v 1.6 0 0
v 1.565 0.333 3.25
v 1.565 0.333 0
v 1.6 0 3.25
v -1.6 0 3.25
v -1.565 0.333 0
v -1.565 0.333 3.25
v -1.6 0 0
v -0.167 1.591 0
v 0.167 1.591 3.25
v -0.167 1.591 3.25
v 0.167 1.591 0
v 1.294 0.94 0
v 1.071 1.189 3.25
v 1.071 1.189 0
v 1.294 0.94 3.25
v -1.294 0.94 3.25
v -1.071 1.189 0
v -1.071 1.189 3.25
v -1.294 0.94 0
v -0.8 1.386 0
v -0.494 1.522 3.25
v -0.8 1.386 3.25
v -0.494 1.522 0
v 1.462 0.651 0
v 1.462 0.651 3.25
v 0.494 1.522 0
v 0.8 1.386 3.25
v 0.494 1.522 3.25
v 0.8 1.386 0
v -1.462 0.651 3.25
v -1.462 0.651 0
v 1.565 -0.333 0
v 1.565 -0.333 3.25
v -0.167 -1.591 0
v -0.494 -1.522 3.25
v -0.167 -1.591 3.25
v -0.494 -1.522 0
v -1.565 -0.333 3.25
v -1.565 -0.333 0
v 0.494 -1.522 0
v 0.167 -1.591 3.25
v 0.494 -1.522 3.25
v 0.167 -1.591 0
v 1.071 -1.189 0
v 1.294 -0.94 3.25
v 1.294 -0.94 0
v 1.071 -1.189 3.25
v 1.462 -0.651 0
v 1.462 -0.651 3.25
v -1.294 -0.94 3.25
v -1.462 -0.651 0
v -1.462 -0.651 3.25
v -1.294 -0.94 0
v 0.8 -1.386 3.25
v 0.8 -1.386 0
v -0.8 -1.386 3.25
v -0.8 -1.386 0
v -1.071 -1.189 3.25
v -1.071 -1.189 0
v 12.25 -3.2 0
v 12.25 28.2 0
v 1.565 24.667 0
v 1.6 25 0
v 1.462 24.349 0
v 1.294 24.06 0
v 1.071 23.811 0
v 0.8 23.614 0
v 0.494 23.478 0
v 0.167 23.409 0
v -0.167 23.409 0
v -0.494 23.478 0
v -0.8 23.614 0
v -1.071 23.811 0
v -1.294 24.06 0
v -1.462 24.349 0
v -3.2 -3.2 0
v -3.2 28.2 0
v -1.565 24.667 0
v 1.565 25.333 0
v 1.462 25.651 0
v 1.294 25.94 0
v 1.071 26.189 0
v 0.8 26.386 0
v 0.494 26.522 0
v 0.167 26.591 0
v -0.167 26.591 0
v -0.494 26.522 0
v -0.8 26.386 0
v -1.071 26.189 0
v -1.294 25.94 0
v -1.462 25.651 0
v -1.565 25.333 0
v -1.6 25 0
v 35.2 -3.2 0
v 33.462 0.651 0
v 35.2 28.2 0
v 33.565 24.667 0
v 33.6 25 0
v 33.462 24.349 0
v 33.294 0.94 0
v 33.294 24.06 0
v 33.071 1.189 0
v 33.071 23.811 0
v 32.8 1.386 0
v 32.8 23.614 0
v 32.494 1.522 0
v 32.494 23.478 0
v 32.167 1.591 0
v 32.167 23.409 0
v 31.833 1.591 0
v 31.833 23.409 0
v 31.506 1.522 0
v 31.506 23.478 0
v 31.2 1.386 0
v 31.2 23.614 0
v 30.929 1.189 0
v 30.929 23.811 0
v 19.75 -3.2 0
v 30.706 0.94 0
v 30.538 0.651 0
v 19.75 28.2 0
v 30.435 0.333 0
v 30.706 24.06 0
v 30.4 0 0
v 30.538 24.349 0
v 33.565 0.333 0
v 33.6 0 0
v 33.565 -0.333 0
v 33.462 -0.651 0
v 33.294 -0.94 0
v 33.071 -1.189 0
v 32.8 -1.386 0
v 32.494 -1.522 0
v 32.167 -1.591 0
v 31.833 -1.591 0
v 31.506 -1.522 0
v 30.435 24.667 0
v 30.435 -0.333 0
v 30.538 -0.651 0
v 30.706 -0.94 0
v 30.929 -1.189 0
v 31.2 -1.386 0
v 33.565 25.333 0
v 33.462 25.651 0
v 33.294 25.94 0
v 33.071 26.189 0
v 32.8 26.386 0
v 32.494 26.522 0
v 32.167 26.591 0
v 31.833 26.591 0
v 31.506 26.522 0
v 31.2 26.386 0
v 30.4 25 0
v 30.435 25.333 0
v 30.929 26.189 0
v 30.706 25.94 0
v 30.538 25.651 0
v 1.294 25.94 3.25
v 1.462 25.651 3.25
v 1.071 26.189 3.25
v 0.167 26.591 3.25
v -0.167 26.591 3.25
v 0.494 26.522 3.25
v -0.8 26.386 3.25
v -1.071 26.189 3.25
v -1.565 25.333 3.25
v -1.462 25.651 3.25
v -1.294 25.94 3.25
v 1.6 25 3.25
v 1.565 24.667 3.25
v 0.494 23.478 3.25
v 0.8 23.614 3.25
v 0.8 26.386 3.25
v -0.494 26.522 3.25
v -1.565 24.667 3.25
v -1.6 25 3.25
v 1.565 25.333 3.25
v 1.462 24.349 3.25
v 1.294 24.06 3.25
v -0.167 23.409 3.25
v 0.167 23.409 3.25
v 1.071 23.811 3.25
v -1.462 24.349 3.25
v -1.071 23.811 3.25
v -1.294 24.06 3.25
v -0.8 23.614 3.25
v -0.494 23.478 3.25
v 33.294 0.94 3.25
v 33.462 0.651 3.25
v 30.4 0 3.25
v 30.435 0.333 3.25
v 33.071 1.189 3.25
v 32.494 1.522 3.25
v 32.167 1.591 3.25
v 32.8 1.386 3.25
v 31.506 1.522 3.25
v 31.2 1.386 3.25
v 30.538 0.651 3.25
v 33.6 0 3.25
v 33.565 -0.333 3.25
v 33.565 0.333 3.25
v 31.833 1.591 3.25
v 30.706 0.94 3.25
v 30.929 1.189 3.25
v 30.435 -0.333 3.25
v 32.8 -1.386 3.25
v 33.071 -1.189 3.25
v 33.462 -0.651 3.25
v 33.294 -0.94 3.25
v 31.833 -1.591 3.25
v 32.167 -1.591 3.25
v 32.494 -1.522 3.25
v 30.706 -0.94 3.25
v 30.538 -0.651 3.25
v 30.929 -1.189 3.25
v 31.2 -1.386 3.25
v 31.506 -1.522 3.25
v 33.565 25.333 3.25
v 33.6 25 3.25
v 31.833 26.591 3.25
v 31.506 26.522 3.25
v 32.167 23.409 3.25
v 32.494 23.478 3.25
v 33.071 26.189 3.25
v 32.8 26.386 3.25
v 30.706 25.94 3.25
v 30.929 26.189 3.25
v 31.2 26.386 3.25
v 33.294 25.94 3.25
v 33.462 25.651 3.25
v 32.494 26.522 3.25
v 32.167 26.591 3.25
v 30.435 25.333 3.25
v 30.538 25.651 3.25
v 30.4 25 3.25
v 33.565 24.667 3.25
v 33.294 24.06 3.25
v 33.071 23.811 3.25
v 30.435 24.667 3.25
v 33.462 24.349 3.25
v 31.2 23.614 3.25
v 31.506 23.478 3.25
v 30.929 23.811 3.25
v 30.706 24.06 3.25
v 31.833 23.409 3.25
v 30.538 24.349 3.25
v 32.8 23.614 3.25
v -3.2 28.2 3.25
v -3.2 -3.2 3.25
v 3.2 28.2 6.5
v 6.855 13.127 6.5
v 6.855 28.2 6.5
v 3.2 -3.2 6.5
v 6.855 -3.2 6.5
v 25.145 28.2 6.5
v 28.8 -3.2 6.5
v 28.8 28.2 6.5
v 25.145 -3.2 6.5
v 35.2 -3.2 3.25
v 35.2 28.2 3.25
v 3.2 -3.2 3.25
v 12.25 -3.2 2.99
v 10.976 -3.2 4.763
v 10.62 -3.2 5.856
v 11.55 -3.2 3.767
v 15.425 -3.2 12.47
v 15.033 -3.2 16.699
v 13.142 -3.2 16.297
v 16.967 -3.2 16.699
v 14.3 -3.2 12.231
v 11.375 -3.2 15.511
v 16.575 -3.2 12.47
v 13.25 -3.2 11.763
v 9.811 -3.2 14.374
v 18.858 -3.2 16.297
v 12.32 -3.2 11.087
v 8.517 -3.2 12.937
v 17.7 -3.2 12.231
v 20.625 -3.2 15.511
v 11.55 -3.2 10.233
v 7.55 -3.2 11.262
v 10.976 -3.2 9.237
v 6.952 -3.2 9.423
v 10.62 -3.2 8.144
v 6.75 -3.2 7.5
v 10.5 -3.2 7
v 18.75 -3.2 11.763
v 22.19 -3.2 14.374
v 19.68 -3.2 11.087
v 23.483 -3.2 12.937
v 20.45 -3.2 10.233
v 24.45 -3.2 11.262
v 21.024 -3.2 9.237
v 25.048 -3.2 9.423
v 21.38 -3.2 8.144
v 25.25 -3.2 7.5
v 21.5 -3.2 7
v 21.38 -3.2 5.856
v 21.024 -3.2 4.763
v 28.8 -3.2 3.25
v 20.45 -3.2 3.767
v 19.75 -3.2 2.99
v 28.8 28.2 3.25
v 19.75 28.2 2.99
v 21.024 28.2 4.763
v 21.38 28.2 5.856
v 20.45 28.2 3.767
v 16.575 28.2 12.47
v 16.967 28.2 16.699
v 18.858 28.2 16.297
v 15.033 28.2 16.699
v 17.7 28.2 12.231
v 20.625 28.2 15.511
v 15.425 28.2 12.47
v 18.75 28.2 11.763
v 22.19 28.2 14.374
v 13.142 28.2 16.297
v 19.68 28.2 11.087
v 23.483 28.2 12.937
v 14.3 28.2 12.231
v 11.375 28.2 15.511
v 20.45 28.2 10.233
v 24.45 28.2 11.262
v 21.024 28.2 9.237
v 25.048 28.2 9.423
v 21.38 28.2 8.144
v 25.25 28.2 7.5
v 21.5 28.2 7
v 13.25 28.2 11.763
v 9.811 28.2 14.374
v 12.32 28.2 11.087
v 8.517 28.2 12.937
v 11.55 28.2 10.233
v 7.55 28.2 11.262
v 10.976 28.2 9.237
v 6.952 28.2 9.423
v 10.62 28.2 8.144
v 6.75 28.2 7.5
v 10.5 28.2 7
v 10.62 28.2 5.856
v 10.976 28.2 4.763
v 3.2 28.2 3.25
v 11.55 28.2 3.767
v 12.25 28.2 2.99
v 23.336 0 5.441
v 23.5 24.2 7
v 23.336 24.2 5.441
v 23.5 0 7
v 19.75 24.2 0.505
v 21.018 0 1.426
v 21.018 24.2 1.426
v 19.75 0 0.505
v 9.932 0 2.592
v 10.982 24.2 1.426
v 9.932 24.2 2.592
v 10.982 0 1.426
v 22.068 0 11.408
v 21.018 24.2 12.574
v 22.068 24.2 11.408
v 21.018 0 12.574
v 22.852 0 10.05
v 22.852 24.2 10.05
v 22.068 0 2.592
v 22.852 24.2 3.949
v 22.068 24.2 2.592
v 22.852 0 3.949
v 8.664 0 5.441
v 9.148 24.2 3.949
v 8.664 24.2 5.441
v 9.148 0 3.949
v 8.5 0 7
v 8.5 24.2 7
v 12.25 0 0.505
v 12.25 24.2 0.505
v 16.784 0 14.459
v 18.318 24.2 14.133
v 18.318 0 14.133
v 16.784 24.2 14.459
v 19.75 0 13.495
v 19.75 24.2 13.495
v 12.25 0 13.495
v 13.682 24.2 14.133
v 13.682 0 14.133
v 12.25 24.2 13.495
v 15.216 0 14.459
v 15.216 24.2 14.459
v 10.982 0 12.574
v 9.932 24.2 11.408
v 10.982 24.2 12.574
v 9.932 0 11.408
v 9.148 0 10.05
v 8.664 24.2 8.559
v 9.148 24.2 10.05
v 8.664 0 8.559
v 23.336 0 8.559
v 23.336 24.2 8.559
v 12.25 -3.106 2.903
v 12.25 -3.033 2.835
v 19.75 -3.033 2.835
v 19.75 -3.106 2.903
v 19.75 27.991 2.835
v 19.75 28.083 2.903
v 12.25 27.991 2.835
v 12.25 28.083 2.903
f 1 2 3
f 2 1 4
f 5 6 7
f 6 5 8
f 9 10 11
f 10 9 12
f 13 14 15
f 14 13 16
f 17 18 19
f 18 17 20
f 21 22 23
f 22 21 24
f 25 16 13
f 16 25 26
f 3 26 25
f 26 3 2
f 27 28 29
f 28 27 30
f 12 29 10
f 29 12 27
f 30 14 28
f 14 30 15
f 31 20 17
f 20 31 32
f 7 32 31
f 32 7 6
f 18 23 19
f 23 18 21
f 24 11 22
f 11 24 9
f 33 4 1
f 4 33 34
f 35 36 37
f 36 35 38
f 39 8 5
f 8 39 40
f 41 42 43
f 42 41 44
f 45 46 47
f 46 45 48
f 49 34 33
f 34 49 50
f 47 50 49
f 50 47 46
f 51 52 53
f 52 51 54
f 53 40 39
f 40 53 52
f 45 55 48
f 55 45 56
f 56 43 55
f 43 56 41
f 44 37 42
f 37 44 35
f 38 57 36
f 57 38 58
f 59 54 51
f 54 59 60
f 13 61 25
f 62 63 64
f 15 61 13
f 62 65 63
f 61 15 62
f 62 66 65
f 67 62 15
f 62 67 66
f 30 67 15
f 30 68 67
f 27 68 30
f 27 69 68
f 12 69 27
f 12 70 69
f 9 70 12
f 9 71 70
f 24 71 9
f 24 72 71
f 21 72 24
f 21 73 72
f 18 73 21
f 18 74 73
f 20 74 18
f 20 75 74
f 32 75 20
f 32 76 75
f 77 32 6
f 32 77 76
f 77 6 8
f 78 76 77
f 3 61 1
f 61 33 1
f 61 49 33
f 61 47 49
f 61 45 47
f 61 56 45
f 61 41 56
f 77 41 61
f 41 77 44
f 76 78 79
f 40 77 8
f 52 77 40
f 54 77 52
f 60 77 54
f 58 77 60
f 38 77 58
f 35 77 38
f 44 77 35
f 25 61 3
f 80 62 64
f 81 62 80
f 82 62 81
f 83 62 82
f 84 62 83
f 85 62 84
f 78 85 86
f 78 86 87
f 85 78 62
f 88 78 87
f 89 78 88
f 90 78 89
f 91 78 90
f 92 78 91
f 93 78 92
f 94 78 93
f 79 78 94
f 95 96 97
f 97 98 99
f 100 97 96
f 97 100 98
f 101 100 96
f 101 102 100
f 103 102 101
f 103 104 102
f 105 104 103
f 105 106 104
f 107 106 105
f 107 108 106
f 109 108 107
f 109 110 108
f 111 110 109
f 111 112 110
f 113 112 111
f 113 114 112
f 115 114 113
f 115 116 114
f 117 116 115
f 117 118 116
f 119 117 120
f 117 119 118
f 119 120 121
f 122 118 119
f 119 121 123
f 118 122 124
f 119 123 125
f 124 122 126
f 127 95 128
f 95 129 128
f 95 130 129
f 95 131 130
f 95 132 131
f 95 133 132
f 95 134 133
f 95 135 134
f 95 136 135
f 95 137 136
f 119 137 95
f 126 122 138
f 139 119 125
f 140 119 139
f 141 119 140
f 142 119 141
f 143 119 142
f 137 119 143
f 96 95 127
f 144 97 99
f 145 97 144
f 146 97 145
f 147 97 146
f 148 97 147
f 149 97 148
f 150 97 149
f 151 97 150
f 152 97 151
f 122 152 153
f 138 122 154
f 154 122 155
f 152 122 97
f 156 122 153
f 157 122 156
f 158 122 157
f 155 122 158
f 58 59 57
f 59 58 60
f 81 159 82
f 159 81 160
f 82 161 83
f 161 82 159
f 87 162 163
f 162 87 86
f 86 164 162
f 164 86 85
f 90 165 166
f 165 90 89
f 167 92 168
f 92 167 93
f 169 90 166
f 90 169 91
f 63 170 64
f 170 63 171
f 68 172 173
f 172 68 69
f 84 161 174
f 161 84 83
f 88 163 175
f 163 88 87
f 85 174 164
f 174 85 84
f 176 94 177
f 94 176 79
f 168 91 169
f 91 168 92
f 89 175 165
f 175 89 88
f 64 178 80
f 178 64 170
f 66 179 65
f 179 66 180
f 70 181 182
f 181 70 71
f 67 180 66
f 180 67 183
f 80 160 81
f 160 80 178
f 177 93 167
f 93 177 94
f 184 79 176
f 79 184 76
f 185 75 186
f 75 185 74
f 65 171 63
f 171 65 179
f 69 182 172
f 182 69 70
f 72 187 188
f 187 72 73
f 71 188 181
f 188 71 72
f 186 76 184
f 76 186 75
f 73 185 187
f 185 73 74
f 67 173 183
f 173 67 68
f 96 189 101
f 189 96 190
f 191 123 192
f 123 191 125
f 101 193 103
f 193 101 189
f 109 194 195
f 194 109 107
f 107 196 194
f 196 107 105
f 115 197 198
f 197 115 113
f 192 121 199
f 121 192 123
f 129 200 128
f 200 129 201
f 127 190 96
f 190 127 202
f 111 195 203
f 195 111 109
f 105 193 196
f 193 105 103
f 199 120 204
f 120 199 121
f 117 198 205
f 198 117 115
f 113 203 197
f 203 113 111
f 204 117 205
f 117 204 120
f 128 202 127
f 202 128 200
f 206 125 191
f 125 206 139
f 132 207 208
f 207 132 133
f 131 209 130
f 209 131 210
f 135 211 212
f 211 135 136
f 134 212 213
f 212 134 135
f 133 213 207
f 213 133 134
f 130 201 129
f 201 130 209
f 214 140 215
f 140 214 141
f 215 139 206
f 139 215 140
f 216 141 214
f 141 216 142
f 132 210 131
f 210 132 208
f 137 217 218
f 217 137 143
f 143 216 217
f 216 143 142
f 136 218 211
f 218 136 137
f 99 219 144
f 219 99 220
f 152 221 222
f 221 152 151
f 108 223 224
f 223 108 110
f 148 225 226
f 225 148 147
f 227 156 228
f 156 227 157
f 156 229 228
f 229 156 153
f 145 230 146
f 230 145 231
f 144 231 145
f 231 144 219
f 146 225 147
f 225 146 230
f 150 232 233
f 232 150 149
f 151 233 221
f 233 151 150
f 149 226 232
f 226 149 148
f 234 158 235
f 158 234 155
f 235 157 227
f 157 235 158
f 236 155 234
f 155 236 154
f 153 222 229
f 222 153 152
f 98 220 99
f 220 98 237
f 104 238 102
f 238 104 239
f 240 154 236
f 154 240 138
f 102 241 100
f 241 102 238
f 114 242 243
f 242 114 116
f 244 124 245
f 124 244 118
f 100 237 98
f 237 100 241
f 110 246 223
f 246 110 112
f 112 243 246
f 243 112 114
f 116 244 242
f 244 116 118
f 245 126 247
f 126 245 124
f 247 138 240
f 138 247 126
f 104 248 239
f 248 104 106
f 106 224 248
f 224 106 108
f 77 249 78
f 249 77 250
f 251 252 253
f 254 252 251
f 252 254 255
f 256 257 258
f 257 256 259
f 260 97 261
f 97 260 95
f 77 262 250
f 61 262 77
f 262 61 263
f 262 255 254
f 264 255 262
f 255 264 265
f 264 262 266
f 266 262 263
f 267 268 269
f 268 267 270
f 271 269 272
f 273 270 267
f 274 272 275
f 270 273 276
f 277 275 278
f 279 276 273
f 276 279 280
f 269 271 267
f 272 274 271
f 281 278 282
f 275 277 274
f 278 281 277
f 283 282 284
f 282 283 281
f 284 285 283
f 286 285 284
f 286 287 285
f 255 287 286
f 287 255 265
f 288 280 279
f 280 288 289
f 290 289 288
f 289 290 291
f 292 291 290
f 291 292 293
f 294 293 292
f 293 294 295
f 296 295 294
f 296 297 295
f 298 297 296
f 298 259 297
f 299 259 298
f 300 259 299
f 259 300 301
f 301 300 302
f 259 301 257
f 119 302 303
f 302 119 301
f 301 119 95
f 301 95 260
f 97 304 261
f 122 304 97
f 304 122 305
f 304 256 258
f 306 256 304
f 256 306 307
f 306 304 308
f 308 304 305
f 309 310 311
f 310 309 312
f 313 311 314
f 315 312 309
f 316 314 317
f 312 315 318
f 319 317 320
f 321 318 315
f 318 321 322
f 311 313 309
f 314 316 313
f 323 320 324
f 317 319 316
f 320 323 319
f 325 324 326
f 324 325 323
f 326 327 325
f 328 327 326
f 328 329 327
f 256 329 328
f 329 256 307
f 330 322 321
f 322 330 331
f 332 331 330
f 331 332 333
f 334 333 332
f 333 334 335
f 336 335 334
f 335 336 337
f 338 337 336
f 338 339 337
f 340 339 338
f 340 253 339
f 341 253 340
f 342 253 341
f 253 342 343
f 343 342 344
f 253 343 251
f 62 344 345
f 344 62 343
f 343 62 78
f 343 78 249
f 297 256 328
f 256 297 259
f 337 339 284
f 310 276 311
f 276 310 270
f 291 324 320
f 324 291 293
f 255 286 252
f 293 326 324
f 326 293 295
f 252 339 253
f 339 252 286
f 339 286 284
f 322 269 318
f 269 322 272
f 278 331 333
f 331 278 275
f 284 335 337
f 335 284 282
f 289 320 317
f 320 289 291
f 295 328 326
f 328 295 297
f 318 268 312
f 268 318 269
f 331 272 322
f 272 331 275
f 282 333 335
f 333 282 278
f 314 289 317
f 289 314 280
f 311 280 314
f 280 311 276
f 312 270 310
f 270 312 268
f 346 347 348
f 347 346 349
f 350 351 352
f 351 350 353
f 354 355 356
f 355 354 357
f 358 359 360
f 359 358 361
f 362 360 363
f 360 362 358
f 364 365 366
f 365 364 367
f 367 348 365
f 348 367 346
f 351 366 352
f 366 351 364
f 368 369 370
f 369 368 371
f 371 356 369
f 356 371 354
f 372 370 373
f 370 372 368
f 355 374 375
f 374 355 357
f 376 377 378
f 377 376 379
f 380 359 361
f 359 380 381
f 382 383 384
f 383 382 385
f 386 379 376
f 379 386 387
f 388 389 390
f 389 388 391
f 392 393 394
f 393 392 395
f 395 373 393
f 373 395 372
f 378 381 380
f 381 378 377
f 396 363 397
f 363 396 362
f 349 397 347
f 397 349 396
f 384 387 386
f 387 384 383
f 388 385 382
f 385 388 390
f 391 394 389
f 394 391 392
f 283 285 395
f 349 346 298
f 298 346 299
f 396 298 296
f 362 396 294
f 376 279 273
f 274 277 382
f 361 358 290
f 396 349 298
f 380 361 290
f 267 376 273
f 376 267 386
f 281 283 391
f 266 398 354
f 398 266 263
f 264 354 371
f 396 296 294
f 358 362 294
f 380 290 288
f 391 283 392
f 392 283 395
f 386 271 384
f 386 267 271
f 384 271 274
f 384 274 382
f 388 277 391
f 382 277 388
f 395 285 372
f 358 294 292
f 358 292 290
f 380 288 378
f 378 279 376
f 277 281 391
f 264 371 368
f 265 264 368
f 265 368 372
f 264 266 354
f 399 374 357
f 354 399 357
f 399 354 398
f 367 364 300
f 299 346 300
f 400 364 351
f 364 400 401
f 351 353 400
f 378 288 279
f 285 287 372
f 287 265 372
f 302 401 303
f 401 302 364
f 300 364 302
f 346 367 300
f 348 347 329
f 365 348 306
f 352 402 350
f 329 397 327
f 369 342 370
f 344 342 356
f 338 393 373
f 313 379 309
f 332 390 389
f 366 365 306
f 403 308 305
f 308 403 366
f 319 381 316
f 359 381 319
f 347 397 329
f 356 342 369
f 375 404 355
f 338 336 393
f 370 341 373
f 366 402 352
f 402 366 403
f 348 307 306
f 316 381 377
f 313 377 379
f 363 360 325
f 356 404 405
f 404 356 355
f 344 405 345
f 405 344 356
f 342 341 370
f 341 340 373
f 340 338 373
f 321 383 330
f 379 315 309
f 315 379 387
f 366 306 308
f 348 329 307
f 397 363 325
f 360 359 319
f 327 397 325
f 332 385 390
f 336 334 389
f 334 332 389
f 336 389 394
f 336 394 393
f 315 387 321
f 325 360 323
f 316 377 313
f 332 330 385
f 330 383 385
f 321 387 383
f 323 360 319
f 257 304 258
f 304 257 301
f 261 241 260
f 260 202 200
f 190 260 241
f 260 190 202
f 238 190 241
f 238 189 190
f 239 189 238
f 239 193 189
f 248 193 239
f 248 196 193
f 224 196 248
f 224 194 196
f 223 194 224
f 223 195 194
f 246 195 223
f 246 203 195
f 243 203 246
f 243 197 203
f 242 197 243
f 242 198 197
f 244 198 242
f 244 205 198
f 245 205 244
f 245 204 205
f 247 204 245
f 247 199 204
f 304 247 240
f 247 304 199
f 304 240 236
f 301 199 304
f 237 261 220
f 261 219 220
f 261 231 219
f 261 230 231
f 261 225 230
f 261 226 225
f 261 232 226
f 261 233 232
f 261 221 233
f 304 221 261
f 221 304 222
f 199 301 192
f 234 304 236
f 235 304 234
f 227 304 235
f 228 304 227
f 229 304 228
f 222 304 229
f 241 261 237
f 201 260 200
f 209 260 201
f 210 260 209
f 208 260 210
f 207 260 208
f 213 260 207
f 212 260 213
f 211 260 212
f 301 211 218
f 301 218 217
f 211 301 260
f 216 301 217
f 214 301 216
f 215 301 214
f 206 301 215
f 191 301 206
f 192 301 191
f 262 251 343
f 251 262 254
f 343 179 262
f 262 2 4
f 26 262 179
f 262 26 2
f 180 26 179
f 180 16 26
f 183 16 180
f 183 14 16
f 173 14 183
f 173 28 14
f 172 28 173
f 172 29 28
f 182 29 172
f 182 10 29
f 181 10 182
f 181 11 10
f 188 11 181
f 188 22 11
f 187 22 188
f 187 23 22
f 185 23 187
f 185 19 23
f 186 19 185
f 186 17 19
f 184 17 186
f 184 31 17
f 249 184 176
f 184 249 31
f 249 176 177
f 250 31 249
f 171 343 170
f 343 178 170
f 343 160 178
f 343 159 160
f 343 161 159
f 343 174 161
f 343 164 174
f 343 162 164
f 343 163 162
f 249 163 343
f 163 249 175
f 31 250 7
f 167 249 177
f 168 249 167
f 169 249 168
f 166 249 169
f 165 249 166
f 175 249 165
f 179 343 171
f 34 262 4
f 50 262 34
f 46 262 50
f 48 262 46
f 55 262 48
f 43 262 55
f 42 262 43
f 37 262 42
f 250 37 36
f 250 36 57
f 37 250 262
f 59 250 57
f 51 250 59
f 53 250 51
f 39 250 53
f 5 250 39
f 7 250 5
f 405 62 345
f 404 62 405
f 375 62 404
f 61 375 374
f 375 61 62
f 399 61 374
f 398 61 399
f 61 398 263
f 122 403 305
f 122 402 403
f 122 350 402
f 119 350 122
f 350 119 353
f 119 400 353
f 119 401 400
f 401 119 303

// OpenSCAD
// Single bearing holder

// defaults to lm8uu dimensions
module lulz_single_holder(x_sep=91-59,y_sep=64-39,lm8uu=15, height=6.5, holes=true) {
  lm8uu_hold=lm8uu+3.5; // outer shell
  lm8uu_zip=lm8uu_hold+4; // ziptie cutouts
  block_height = height;
  $fs=0.2;
  difference() {
    union() {
      translate([-3.2,-3.2,0])cube([x_sep+6.4,y_sep+6.4,block_height]);
      translate([x_sep/2,-3.2,0+(lm8uu/2)])rotate([-90,0,0]) cylinder(r=lm8uu_hold/2,h=27.4+4);
    }
    translate([-3.2+x_sep,-3.2,block_height/2])cube([x_sep+6.4,y_sep+6.4,20]);
    translate([-3.2-x_sep,-3.2,block_height/2])cube([x_sep+6.4,y_sep+6.4,20]);
    if (holes) {
      for (i = [0, x_sep]) {
        for (j = [0,y_sep]) {
          translate([i,j,0]) cylinder(r=3.2/2,h=10);
        }
      }
    }
    translate([0,0,block_height-7+(lm8uu/2)]) 
    {
    translate([x_sep/2,0,0])rotate([-90,0,0]) cylinder(r=lm8uu/2,h=24.2);

    translate([x_sep/2,-3.2,0])rotate([-90,0,0]) cylinder(r1=(lm8uu-4)/2,r2=lm8uu/2,h=3.2);
    translate([x_sep/2,24.2,0])rotate([-90,0,0]) cylinder(r1=(lm8uu)/2,r2=(lm8uu-4)/2,h=4);
    }
    translate([x_sep/2,0,0])cube([lm8uu/2,100,lm8uu],center=true);
    translate([-3.2,-3.2,-block_height])cube([x_sep+6.4,y_sep+6.4,block_height]);
    for (i = [2, 10, 18]) {
      translate([0,i,0])
        difference() {
        }
    }
  }
}

lulz_single_holder();
